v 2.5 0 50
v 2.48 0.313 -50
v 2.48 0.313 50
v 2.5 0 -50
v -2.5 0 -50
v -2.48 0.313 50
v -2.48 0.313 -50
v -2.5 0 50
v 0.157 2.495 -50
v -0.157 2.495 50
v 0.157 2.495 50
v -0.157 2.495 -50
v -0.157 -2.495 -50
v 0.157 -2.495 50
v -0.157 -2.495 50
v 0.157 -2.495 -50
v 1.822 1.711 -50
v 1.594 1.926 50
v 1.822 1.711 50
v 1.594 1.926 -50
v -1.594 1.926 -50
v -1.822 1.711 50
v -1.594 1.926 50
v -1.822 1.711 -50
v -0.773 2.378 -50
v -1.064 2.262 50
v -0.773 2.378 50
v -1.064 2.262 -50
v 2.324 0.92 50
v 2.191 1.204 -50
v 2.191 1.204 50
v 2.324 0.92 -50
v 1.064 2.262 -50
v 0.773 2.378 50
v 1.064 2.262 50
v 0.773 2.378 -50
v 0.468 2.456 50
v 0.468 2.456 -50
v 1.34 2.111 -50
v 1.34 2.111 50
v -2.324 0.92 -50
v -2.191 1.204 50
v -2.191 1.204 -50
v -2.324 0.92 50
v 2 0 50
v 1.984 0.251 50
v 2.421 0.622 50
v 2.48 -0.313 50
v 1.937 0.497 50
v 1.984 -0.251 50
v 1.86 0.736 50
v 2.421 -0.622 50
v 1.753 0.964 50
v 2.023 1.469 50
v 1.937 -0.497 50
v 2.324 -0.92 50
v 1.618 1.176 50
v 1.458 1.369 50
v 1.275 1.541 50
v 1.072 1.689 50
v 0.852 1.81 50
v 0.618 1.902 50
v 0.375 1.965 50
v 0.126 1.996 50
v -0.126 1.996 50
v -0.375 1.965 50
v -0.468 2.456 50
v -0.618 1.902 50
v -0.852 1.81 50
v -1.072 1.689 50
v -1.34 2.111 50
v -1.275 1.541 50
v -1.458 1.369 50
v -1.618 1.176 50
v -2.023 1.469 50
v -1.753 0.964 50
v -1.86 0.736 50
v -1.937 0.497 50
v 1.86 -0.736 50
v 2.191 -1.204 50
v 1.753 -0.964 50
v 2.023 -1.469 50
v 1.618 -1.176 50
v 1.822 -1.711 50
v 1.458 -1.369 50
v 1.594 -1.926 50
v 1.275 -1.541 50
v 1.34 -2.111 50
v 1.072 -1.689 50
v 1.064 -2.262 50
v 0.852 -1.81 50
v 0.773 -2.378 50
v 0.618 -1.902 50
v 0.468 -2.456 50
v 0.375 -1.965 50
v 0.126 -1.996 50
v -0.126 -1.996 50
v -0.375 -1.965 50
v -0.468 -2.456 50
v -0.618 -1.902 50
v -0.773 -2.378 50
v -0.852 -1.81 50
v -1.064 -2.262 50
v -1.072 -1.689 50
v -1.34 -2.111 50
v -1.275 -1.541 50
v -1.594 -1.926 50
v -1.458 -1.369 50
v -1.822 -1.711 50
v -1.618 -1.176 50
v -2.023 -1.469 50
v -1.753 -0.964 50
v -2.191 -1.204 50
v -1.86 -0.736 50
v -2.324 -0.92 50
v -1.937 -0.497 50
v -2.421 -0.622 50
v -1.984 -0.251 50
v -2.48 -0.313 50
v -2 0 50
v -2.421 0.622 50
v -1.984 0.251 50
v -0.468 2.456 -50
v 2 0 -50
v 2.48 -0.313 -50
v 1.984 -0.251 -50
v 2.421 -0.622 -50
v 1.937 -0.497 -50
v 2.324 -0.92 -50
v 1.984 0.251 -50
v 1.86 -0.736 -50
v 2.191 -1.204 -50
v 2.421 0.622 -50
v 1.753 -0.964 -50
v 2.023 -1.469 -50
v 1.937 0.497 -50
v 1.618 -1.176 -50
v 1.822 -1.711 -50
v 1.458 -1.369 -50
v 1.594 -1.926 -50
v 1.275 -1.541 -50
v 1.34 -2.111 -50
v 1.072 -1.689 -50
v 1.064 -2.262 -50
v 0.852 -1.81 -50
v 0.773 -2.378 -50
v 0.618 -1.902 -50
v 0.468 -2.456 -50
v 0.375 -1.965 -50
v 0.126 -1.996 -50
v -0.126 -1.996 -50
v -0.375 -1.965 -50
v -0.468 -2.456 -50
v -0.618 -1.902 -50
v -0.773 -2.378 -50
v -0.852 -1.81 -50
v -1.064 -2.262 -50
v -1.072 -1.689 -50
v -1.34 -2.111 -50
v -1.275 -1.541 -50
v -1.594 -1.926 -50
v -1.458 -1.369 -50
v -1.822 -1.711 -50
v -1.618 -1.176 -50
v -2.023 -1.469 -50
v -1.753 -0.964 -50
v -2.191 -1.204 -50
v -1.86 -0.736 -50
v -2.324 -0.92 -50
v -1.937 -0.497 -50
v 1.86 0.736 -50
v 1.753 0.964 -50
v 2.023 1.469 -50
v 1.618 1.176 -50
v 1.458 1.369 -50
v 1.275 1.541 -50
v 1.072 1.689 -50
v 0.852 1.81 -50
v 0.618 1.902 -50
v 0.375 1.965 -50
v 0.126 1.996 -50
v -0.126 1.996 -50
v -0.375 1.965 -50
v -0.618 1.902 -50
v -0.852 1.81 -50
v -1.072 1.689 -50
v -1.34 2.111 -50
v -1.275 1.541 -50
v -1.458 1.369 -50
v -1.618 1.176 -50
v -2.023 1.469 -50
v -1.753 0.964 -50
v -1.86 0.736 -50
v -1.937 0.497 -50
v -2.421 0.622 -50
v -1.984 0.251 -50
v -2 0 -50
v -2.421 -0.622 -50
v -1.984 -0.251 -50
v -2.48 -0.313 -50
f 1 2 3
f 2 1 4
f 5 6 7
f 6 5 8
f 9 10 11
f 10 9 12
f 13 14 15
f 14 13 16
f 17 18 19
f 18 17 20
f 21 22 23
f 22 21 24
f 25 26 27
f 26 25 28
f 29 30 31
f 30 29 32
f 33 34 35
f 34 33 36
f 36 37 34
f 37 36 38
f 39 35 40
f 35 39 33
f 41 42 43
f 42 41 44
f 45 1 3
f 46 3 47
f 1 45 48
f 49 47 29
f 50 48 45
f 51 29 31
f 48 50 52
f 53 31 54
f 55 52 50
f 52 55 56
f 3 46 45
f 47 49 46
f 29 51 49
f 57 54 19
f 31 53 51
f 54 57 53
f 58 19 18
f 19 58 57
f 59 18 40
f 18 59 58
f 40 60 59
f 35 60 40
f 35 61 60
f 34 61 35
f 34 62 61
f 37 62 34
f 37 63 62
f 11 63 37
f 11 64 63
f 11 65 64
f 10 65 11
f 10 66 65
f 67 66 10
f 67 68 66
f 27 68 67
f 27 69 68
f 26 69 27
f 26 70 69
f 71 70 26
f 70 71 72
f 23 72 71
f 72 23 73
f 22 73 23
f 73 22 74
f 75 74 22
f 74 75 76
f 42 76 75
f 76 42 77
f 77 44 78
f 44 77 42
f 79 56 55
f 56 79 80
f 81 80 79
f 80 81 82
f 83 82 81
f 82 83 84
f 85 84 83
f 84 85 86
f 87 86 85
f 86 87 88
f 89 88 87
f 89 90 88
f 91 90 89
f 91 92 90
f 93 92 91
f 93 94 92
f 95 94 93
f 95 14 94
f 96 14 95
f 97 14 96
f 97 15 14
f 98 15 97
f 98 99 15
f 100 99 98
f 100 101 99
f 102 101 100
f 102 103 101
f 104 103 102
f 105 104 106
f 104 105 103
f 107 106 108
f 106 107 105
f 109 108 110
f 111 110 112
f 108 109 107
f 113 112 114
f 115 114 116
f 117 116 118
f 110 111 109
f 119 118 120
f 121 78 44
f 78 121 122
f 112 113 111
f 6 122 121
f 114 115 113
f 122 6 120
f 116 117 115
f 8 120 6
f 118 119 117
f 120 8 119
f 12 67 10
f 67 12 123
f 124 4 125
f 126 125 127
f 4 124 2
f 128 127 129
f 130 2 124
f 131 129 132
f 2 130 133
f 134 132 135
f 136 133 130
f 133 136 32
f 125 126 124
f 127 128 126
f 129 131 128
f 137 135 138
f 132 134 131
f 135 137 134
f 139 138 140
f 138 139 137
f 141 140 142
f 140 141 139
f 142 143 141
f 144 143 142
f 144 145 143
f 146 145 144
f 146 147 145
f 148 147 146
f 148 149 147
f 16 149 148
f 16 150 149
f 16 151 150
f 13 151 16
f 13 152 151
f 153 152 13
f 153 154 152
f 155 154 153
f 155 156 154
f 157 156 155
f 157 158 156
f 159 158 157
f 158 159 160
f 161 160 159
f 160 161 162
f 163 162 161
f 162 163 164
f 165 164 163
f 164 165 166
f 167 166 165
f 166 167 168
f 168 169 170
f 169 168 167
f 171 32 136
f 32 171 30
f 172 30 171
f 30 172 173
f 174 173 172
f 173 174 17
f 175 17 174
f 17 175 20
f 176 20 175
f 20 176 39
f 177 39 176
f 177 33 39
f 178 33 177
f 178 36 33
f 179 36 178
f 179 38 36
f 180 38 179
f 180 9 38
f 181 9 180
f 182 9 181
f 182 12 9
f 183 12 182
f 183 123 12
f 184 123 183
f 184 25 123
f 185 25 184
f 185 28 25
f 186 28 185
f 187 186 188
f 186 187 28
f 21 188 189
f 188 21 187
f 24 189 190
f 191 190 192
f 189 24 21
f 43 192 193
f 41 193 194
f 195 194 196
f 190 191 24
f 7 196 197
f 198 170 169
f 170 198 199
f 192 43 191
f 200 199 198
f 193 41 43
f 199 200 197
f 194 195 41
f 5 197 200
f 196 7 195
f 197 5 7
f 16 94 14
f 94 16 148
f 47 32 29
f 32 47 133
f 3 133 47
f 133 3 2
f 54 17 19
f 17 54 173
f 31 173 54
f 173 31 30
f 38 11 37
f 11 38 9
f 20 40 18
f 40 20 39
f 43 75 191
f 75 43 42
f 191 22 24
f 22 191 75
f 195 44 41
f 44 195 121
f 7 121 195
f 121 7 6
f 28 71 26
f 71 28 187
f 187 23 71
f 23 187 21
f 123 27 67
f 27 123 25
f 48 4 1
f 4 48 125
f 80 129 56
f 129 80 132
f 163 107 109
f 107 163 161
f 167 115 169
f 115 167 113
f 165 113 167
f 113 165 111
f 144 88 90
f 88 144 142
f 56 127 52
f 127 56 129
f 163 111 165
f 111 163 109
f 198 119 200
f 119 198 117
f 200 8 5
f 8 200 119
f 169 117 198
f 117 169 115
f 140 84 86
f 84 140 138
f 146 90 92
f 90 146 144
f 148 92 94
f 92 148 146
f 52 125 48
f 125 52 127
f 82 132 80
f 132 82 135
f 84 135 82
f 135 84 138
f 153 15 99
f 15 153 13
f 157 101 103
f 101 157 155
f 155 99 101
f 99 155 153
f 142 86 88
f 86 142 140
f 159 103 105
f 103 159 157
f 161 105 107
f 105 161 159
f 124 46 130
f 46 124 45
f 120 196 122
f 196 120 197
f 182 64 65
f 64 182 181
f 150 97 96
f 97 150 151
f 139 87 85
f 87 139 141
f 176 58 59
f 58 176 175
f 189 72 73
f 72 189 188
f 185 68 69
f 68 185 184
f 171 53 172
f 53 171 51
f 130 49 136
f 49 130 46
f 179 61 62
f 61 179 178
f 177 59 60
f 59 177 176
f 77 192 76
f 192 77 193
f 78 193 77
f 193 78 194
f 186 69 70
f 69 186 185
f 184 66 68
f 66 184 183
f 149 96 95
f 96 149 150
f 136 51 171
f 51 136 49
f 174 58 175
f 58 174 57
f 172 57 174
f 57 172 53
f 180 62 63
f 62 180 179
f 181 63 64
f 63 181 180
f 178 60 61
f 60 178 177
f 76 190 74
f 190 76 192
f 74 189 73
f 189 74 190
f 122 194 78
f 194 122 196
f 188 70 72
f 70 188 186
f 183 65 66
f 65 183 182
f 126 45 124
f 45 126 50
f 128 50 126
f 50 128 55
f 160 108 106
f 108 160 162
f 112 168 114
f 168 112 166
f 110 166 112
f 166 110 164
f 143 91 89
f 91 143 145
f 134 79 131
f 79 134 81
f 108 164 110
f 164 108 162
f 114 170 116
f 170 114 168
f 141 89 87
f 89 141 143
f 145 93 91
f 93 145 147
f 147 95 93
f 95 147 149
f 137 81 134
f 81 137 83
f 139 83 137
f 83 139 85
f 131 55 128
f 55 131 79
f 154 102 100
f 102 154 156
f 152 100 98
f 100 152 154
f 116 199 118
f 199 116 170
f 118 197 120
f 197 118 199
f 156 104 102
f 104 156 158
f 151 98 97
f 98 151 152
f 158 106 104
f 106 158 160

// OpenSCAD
$fn = 50;


difference() {
	union() {
		translate(v = [0, 0, -50.0000000000]) {
			cylinder(h = 100, r = 2.5000000000);
		}
	}
	union() {
		translate(v = [0, 0, -100.0000000000]) {
			cylinder(h = 200, r = 2);
		}
	}
}
